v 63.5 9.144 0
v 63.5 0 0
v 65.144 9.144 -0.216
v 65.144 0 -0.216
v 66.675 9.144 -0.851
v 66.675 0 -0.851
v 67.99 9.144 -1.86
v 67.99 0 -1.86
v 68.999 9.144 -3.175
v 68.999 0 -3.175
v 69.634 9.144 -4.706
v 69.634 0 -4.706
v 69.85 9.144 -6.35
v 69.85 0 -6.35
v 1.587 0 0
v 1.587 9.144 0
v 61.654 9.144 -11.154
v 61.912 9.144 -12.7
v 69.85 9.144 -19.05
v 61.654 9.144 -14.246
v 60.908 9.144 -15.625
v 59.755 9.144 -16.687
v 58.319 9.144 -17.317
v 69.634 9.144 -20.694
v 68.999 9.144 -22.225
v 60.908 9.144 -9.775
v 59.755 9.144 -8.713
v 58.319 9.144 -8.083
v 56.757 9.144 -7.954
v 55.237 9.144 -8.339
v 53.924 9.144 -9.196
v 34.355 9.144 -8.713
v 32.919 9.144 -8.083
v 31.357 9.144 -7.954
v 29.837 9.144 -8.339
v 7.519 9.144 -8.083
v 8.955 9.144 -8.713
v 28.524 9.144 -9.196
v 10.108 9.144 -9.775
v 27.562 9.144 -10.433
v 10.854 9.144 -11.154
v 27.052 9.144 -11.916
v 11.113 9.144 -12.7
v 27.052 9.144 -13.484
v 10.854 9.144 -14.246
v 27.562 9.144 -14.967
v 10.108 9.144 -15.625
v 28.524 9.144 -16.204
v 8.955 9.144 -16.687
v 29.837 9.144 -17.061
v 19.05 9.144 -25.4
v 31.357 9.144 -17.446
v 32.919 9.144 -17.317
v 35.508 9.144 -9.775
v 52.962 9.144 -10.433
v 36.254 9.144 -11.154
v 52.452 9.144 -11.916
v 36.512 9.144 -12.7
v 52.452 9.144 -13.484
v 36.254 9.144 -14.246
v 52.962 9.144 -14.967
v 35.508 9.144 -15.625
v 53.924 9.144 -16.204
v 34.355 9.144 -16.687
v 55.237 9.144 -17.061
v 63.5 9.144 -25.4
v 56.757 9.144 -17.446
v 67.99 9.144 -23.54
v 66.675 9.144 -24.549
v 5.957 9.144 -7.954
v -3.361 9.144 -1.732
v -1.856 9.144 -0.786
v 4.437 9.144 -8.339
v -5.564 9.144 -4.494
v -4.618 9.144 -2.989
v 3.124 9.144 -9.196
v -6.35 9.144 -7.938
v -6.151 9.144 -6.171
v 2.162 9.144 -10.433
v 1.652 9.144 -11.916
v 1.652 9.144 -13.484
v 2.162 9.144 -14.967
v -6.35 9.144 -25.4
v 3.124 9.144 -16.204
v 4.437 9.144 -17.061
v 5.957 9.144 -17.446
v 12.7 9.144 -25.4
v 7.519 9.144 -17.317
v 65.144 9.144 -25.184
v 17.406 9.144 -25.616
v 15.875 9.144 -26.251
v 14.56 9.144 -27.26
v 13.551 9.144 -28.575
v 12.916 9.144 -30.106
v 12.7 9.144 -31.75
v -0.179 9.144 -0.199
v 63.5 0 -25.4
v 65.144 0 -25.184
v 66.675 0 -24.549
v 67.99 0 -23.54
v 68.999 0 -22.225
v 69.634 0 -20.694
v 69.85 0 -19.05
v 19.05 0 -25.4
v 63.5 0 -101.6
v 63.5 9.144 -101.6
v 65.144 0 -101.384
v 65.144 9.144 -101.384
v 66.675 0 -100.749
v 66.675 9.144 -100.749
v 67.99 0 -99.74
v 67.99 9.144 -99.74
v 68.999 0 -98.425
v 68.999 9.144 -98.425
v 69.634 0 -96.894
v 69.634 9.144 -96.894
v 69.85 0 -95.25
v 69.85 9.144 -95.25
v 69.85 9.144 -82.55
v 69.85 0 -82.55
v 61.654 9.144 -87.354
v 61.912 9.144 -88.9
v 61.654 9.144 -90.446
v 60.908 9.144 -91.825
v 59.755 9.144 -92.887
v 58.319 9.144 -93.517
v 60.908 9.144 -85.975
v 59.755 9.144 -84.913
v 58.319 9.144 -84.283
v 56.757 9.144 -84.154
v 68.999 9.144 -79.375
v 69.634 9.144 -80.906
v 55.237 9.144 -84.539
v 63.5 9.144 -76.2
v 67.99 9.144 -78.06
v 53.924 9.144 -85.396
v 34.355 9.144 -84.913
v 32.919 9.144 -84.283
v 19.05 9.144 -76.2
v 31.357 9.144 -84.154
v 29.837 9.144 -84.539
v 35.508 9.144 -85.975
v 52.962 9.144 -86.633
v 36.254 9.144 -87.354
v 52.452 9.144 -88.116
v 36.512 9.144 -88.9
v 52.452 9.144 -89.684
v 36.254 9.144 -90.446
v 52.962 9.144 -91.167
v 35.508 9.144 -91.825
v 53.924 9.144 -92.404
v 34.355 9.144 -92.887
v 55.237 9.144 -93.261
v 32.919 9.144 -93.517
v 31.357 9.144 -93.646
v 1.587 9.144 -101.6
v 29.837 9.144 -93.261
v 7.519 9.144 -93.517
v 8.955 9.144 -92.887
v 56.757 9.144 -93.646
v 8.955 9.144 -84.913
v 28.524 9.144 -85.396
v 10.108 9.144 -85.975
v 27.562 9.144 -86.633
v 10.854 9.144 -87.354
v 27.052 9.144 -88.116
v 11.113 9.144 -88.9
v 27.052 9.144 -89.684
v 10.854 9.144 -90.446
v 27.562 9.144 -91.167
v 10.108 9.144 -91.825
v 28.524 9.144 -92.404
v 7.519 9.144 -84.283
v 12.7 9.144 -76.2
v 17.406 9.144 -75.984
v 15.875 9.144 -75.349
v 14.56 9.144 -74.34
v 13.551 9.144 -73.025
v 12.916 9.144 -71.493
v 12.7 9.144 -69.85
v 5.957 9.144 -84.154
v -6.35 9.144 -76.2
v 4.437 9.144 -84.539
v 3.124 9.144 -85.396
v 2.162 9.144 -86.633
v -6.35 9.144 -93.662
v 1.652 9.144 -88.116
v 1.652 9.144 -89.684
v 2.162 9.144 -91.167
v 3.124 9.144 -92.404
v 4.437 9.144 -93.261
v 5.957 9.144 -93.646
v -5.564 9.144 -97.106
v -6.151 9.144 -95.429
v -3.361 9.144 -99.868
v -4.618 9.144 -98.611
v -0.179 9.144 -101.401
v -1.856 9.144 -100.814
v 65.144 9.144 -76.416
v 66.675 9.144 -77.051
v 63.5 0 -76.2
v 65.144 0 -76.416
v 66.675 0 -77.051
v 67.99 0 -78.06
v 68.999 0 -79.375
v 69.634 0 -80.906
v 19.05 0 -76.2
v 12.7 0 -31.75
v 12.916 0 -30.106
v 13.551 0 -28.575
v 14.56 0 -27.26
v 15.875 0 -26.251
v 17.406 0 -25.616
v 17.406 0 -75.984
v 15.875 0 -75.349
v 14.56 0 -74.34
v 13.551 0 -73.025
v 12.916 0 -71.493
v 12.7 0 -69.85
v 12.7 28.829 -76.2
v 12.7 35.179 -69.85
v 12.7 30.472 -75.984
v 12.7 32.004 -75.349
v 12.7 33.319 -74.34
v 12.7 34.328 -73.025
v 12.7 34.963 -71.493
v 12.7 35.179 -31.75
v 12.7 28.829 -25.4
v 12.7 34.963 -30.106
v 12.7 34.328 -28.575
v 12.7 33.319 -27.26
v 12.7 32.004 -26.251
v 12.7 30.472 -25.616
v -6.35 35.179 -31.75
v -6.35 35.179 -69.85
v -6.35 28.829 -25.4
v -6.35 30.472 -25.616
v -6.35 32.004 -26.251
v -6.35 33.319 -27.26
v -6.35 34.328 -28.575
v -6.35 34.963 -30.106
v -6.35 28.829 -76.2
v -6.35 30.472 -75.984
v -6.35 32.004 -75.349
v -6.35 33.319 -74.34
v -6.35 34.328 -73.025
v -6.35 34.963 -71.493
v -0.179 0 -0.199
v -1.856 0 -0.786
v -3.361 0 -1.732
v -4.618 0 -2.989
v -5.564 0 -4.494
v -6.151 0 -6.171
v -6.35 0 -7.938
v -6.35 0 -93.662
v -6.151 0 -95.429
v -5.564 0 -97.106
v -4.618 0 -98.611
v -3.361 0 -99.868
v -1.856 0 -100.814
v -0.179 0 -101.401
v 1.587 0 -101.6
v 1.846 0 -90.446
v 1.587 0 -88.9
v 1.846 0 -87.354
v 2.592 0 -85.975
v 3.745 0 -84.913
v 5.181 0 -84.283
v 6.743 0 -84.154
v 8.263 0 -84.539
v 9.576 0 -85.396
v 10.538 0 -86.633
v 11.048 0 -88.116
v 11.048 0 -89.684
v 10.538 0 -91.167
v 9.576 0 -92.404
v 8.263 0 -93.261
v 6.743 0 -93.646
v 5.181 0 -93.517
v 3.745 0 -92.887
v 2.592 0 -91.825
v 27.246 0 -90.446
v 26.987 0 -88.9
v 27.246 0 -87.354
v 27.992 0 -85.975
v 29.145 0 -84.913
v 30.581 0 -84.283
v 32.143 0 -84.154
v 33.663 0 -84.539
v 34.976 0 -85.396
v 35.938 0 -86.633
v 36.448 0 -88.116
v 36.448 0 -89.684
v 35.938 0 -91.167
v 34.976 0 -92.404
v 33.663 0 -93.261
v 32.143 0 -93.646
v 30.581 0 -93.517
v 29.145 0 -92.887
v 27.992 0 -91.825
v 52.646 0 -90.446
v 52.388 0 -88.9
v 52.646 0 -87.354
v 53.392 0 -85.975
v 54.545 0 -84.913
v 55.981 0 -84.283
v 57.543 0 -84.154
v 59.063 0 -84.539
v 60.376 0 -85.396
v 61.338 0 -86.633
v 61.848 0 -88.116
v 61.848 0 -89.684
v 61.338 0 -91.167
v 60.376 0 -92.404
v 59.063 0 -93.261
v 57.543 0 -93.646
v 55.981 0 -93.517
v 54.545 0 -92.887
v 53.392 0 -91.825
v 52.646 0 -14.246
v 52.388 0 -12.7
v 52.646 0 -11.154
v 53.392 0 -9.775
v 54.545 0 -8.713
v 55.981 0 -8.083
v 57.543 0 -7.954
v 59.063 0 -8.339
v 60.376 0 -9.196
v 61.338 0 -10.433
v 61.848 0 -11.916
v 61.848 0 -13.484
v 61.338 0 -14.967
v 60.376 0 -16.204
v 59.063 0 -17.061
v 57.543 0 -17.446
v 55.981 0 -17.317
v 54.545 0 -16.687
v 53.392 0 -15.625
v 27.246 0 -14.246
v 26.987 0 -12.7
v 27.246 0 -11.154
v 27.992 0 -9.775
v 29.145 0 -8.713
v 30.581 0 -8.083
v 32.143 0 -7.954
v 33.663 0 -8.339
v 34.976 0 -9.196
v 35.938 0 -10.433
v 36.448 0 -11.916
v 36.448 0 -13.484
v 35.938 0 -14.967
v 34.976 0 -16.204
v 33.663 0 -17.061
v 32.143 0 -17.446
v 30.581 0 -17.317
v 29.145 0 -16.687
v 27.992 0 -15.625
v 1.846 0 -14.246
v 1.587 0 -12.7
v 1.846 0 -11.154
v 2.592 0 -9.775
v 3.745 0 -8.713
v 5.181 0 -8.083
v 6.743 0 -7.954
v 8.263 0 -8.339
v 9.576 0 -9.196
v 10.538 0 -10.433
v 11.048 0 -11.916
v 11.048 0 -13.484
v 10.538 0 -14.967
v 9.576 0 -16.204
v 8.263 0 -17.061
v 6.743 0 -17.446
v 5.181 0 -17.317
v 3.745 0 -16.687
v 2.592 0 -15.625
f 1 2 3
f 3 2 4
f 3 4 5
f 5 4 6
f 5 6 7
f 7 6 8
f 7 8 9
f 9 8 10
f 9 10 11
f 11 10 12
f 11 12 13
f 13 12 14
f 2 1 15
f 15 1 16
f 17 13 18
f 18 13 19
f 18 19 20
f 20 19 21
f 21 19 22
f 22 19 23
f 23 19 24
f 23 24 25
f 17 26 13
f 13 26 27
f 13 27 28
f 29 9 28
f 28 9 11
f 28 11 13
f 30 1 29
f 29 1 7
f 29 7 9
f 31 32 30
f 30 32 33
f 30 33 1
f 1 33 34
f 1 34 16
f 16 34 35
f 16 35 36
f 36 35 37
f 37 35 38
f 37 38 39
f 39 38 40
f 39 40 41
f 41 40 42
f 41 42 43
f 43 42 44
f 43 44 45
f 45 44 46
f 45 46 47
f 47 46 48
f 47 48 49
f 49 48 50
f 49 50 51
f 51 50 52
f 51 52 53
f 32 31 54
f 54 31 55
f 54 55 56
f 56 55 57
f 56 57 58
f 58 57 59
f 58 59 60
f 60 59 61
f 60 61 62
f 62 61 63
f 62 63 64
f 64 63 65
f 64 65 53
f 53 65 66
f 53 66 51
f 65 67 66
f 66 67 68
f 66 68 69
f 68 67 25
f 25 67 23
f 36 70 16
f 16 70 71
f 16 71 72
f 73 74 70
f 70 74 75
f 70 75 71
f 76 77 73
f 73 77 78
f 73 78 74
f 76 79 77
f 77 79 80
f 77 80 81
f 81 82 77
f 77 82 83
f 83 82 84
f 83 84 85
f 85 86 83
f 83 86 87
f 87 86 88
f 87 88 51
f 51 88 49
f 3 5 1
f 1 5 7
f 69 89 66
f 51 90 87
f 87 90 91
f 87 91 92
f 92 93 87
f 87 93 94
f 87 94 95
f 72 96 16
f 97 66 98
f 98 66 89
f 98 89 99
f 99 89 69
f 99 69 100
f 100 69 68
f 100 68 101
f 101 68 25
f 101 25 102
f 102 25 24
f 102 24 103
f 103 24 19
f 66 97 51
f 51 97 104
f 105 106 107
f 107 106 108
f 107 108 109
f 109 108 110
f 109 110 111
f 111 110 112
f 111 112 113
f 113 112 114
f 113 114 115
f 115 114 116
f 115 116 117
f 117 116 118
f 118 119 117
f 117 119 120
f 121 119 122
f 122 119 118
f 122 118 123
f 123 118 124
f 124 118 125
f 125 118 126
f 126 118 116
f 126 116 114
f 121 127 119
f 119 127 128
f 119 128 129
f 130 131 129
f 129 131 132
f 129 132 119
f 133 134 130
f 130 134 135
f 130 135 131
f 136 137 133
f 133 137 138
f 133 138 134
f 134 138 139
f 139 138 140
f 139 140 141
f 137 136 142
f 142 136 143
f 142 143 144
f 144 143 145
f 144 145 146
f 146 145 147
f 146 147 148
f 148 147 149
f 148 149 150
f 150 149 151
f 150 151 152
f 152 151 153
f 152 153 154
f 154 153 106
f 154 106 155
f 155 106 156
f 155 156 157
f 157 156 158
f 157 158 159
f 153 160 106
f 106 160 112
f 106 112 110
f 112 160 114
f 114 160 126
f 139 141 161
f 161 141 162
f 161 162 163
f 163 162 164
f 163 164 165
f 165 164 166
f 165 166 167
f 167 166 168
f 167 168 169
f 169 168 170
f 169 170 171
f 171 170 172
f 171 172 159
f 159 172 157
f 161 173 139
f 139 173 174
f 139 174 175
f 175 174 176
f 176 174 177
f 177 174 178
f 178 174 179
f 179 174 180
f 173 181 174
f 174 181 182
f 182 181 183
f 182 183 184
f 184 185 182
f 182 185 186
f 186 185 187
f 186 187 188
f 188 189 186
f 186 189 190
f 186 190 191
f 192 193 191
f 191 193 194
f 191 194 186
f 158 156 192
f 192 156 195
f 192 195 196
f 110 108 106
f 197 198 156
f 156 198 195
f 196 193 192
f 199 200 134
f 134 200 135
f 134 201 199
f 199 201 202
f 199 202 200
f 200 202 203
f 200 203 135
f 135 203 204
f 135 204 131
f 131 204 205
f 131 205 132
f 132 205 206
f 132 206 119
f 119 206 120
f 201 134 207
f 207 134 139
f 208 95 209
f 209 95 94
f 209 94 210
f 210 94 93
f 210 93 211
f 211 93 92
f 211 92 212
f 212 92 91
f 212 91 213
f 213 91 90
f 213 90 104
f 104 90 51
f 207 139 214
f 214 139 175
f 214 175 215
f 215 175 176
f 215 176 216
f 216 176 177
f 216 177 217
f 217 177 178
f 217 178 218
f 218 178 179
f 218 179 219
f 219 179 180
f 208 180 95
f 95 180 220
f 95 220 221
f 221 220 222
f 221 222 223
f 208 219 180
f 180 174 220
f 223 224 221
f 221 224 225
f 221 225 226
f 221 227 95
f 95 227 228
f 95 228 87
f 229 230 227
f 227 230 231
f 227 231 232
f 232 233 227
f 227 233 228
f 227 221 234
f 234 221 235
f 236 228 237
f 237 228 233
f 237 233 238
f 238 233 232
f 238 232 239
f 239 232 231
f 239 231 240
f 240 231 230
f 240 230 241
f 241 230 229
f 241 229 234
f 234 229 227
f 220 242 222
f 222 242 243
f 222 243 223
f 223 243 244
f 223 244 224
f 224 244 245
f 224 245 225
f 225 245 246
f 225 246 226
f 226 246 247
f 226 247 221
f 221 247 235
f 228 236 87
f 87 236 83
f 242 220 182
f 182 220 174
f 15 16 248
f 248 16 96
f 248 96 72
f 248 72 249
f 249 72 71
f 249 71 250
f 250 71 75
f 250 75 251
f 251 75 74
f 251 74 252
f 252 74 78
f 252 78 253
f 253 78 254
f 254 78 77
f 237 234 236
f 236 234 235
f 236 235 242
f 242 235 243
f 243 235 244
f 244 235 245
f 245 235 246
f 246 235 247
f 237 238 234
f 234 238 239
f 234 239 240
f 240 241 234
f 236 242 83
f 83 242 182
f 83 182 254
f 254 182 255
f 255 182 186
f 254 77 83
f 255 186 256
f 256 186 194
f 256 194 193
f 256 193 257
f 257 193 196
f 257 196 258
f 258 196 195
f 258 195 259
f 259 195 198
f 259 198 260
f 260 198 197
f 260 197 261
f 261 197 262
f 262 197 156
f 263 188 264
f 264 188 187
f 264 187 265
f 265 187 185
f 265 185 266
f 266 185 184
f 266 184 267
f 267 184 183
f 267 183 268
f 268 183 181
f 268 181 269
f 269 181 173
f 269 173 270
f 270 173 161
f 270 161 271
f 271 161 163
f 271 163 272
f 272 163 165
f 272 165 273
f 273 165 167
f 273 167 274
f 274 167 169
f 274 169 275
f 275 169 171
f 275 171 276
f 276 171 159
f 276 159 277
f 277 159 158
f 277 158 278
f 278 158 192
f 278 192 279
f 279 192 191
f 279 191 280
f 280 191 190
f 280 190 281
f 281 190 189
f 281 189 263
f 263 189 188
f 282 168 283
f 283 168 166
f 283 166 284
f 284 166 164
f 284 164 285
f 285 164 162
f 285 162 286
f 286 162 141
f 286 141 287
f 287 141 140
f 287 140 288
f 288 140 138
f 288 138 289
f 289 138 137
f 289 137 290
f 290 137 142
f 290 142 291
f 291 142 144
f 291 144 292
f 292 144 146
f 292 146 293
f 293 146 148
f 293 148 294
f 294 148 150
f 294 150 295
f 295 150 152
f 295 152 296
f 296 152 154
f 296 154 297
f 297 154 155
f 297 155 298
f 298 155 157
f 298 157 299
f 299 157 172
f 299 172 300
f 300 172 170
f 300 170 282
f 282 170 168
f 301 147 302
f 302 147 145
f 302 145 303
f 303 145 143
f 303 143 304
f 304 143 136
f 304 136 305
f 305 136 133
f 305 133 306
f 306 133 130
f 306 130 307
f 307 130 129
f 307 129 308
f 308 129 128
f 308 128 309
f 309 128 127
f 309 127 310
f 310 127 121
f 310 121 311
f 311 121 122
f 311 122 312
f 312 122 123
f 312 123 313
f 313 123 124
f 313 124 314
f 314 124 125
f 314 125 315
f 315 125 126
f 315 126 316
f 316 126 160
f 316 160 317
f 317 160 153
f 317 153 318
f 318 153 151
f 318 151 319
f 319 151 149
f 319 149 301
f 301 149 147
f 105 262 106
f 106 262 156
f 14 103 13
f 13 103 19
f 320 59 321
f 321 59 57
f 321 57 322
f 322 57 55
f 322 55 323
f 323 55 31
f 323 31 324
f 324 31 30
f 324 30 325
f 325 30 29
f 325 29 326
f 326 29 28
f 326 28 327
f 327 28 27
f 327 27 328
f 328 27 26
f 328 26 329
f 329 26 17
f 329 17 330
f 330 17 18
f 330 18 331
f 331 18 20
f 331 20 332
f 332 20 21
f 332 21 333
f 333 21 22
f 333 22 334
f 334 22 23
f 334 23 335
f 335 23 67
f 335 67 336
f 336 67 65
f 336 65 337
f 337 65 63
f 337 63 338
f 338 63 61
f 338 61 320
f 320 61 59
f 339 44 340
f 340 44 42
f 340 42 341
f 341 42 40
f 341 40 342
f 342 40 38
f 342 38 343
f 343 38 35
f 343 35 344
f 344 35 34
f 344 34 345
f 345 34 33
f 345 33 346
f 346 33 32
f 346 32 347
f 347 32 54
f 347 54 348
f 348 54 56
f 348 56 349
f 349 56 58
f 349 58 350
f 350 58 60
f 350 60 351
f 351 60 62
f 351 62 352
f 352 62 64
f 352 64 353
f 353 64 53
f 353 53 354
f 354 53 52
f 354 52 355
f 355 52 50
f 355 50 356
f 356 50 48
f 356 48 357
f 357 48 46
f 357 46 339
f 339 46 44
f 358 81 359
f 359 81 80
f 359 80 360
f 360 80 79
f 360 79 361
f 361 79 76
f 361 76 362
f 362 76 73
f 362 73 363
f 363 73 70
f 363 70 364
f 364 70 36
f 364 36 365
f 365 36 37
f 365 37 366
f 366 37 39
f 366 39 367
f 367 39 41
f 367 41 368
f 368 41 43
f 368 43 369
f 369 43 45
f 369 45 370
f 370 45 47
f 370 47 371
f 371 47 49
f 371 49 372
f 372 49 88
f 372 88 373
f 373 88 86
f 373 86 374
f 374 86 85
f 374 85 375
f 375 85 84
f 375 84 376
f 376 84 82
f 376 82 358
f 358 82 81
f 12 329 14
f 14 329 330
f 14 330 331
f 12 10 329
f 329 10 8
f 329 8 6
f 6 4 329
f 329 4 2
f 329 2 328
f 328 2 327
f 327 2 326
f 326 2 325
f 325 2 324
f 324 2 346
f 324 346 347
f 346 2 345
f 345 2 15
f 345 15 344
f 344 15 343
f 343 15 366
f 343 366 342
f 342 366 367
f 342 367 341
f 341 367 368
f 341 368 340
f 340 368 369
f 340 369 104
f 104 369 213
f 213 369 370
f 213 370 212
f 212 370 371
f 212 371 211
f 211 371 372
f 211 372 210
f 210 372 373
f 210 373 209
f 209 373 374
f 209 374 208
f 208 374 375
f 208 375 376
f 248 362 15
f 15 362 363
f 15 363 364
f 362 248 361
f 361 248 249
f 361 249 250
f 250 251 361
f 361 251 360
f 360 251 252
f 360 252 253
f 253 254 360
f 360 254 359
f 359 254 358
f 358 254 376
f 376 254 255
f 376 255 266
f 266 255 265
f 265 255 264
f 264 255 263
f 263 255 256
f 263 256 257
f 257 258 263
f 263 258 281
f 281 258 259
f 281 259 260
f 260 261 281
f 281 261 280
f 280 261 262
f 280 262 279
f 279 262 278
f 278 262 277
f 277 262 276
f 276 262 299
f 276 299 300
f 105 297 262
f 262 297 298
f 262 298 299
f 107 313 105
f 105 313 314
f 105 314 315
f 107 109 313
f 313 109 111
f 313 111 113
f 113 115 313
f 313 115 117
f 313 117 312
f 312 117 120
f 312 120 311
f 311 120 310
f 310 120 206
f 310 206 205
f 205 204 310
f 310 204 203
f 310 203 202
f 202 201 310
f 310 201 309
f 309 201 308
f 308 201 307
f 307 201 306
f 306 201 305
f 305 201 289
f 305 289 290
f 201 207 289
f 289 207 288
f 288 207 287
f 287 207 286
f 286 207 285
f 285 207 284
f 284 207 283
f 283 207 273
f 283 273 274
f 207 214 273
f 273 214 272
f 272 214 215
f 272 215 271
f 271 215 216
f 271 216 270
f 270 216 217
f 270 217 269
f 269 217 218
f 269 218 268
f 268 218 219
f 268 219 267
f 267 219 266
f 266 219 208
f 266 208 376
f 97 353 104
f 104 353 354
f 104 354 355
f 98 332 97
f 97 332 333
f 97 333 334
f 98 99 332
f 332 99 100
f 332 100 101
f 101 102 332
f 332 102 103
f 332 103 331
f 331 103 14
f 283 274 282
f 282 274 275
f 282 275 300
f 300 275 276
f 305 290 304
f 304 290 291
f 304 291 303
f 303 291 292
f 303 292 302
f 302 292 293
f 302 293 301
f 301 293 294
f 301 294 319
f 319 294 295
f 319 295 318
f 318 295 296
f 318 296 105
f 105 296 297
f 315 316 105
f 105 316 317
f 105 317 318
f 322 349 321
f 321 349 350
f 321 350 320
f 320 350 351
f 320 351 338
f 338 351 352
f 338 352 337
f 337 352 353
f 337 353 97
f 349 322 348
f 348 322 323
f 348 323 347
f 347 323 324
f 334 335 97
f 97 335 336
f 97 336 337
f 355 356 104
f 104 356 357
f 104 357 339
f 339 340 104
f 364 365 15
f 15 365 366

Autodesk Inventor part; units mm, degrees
ref_plane "YZ Plane" through (0, 0, 0) normal (1, 0, 0) x (0, 1, 0)
ref_plane "XZ Plane" through (0, 0, 0) normal (0, 1, 0) x (-1, 0, 0)
ref_plane "XY Plane" through (0, 0, 0) normal (0, 0, 1) x (1, 0, 0)
sketch "Sketch1" plane through (0, 0, 0) normal (1, 0, 0) x (0, 1, 0)
  line L0 (0, 0) -> (9.144, 0)
  line L1 (9.144, 0) -> (9.144, -25.4)
  line L2 (9.144, -25.4) -> (0, -25.4)
  line L3 (0, -25.4) -> (0, 0)
  dimension "d0" = 25.4
  dimension "d1" = 9.144
extrude "Extrusion1" add sketch "Sketch1" along normal blind 63.5
sketch "Sketch2" plane through (0, 9.144, 0) normal (0, 1, 0) x (1, 0, 0)
  line L0 (0, 25.4) -> (0, 0) projected
  line L1 (0, 12.7) -> (6.35, 12.7)
  line L2 (6.35, 12.7) -> (31.75, 12.7)
  line L3 (31.75, 12.7) -> (57.15, 12.7)
  circle A0 centre (6.35, 12.7) radius 4.7625
  circle A1 centre (31.75, 12.7) radius 4.7625
  circle A2 centre (57.15, 12.7) radius 4.7625
  dimension "d4" = 6.35
  dimension "d5" = 25.4
  dimension "d6" = 25.4
  dimension "d7" = 9.525
  dimension "d8" = 9.525
  dimension "d9" = 9.525
sketch "Sketch3" plane through (0, 0, 0) normal (-1, 0, 0) x (0, 0, 1)
  line L0 (-25.4, 0) -> (-25.4, 9.144) projected
  line L1 (0, 0) -> (-25.4, 0)
  line L2 (-25.4, 0) -> (-25.4, 9.144)
  line L3 (-25.4, 9.144) -> (0, 9.144)
  line L4 (0, 9.144) -> (0, 0)
extrude "Extrusion2" add sketch "Sketch3" along normal blind 3.175
extrude "Extrusion3" cut sketch "Sketch2" against normal blind 25.4
sketch "Sketch4" plane through (63.5, 0, 0) normal (1, 0, 0) x (0, 0, -1)
  line L0 (25.4, 0) -> (25.4, 9.144) projected
  line L1 (25.4, 9.144) -> (0, 9.144) projected
  line L2 (0, 9.144) -> (0, 0) projected
  line L3 (0, 0) -> (25.4, 0) projected
extrude "Extrusion4" add sketch "Sketch4" along normal blind 5.08
sketch "Sketch5" plane through (68.58, 0, 0) normal (1, 0, 0) x (0, 0, -1)
  line L0 (25.4, 9.144) -> (0, 9.144) projected
  line L1 (0, 9.144) -> (0, 0) projected
  line L2 (0, 0) -> (25.4, 0) projected
  line L3 (25.4, 0) -> (25.4, 9.144) projected
extrude "Extrusion5" add sketch "Sketch5" along normal blind 1.27
sketch "Sketch8" plane through (-3.175, 0, -25.4) normal (0, 0, -1) x (-1, 0, 0)
  line L0 (-73.025, 0) -> (0, 0) projected
  line L1 (0, 9.144) -> (-73.025, 9.144) projected
  line L2 (0, 0) -> (-15.875, 0)
  line L3 (-15.875, 0) -> (-15.875, 9.144)
  line L4 (-15.875, 9.144) -> (0, 9.144)
  line L5 (0, 9.144) -> (0, 0)
  line L6 (0, 9.144) -> (0, 0) projected
  point P0 (-3.175, 0)
  point P1 (0, 4.572)
  dimension "d24" = 15.875
extrude "Extrusion8" add sketch "Sketch8" along normal blind 50.8
sketch "Sketch9" plane through (-3.175, 0, 0) normal (-1, 0, 0) x (0, 0, 1)
  line L0 (0, 0) -> (0, 9.144) projected
  line L1 (0, 9.144) -> (-76.2, 9.144) projected
  line L2 (-76.2, 0) -> (-76.2, 9.144) projected
  line L3 (0, 0) -> (-76.2, 0) projected
extrude "Extrusion9" add sketch "Sketch9" along normal blind 3.175
sketch "Sketch10" plane through (69.85, 9.144, 0) normal (0, 1, 0) x (1, 0, 0)
  line L0 (-57.15, 25.4) -> (-57.15, 76.2) projected
  line L1 (-57.15, 76.2) -> (-66.675, 76.2)
  line L2 (-57.15, 76.2) -> (-76.2, 76.2) projected
  line L3 (-71.4375, 41.2761) -> (-61.9125, 41.2761)
  line L4 (-71.4375, 60.3261) -> (-61.9125, 60.3261)
  circle A0 centre (-66.675, 41.2761) radius 4.7625
  circle A1 centre (-66.675, 60.3261) radius 4.7625
  line L5 (-71.4375, 41.2761) -> (-71.4375, 60.3261)
  line L6 (-61.9125, 60.3261) -> (-61.9125, 41.2761)
  point P0 (-69.85, 0)
  dimension "d55" = 9.525
  dimension "d29" = 9.525
  dimension "d56" = 9.525
extrude "Extrusion10" add sketch "Sketch10" along normal blind 35.179
sketch "Sketch11" plane through (-3.175, 0, -76.2) normal (0, 0, -1) x (-1, 0, 0)
  line L0 (-15.875, 9.144) -> (3.175, 9.144) projected
  line L1 (-15.875, 9.144) -> (-15.875, 0) projected
  line L2 (-15.875, 0) -> (3.175, 0) projected
  line L3 (3.175, 9.144) -> (3.175, 0) projected
  point P0 (-3.175, 0)
extrude "Extrusion11" add sketch "Sketch11" along normal blind 25.4
sketch "Sketch13" plane through (12.7, 0, -25.4) normal (1, 0, 0) x (0, 0, -1)
  line L0 (0, 9.144) -> (76.2, 9.144) projected
  line L1 (-25.4, 0) -> (76.2, 0) projected
  line L2 (76.2, 9.144) -> (50.8, 9.144)
  line L3 (50.8, 9.144) -> (50.8, 0)
  line L4 (50.8, 0) -> (76.2, 0)
  line L5 (76.2, 0) -> (76.2, 9.144)
  dimension "d38" = 25.4
extrude "Extrusion12" add sketch "Sketch13" along normal blind 57.15
sketch "Sketch14" plane through (69.85, 9.144, 0) normal (0, 1, 0) x (1, 0, 0)
  circle A0 centre (-12.7, 12.7) radius 4.7625 projected
  line L0 (-12.7, 12.7) -> (-12.7, 88.9)
  circle A1 centre (-38.1, 12.7) radius 4.7625 projected
  line L1 (-38.1, 12.7) -> (-38.1, 88.9)
  circle A2 centre (-12.7, 88.9) radius 4.7625
  circle A3 centre (-38.1, 88.9) radius 4.7625
  circle A4 centre (-63.5, 12.7) radius 4.7625 projected
  line L2 (-63.5, 12.7) -> (-63.5, 88.9)
  circle A5 centre (-63.5, 88.9) radius 4.7625
  point P0 (-69.85, 0)
  dimension "d42" = 76.2
  dimension "d43" = 76.2
  dimension "d44" = 9.525
  dimension "d45" = 9.525
  dimension "d46" = 9.525
extrude "Extrusion13" cut sketch "Sketch14" against normal blind 20.6375 contours A2 | A3 | A5
fillet "Fillet2" radius 7.9375 2 edges at (-6.35, 4.572, -101.6) (-6.35, 4.572, 0)
sketch "Sketch15" plane through (69.85, 9.144, 0) normal (0, 1, 0) x (1, 0, 0)
  line L0 (0, 25.4) -> (-57.15, 25.4) projected
  line L1 (-57.15, 25.4) -> (-76.2, 25.4)
  line L2 (-76.2, 7.9375) -> (-76.2, 93.6625) projected
  line L3 (-57.15, 25.4) -> (-57.15, 76.2) projected
  line L4 (-57.15, 76.2) -> (-76.2, 76.2)
  line L5 (-71.4375, 31.7511) -> (-71.4375, 69.8511) projected
  line L6 (-61.9125, 69.8511) -> (-61.9125, 31.7511) projected
  arc A0 (-71.4375, 31.7511) -> (-61.9125, 31.7511) centre (-66.675, 31.7511) ccw projected
  arc A1 (-61.9125, 69.8511) -> (-71.4375, 69.8511) centre (-66.675, 69.8511) ccw projected
  arc A2 (-71.4375, 41.2761) -> (-61.9125, 41.2761) centre (-66.675, 41.2761) ccw projected
  arc A3 (-61.9125, 60.3261) -> (-71.4375, 60.3261) centre (-66.675, 60.3261) ccw projected
  point P0 (-69.85, 0)
extrude "Extrusion14" add sketch "Sketch15" along normal blind 26.035 contours L1 L2 L4 L3 | L5 A2 L6 A0 | L5 A1 L6 A3
fillet "Fillet3" radius 6.35 2 edges at (3.175, 35.179, -76.2) (3.175, 35.179, -25.4)
sketch "Sketch16" plane through (-1.5875, 44.323, -60.3261) normal (-1, 0, 0) x (0, 0, 1)
  arc A0 (-9.5239, -9.144) -> (-15.8739, -15.494) centre (-9.5239, -15.494) ccw projected
  line L0 (-9.5239, -9.144) -> (49.3517, -9.144)
  line L1 (49.3517, -9.144) -> (49.3517, 6.1013)
  line L2 (49.3517, 6.1013) -> (-9.5239, 6.1013)
  line L3 (-9.5239, 6.1013) -> (-9.5239, -9.144)
  point P0 (60.3261, -44.323)
extrude "Extrusion15" cut sketch "Sketch16" against normal blind 21.971
fillet "Fillet5" radius 6.35 6 edges at (12.7, 4.572, -76.2) (12.7, 4.572, -25.4) (69.85, 4.572, -76.2) (69.85, 4.572, -101.6) (69.85, 4.572, -25.4) (69.85, 4.572, 0)
properties part number "CH-1-03-RearGearboxSpacer_01"
